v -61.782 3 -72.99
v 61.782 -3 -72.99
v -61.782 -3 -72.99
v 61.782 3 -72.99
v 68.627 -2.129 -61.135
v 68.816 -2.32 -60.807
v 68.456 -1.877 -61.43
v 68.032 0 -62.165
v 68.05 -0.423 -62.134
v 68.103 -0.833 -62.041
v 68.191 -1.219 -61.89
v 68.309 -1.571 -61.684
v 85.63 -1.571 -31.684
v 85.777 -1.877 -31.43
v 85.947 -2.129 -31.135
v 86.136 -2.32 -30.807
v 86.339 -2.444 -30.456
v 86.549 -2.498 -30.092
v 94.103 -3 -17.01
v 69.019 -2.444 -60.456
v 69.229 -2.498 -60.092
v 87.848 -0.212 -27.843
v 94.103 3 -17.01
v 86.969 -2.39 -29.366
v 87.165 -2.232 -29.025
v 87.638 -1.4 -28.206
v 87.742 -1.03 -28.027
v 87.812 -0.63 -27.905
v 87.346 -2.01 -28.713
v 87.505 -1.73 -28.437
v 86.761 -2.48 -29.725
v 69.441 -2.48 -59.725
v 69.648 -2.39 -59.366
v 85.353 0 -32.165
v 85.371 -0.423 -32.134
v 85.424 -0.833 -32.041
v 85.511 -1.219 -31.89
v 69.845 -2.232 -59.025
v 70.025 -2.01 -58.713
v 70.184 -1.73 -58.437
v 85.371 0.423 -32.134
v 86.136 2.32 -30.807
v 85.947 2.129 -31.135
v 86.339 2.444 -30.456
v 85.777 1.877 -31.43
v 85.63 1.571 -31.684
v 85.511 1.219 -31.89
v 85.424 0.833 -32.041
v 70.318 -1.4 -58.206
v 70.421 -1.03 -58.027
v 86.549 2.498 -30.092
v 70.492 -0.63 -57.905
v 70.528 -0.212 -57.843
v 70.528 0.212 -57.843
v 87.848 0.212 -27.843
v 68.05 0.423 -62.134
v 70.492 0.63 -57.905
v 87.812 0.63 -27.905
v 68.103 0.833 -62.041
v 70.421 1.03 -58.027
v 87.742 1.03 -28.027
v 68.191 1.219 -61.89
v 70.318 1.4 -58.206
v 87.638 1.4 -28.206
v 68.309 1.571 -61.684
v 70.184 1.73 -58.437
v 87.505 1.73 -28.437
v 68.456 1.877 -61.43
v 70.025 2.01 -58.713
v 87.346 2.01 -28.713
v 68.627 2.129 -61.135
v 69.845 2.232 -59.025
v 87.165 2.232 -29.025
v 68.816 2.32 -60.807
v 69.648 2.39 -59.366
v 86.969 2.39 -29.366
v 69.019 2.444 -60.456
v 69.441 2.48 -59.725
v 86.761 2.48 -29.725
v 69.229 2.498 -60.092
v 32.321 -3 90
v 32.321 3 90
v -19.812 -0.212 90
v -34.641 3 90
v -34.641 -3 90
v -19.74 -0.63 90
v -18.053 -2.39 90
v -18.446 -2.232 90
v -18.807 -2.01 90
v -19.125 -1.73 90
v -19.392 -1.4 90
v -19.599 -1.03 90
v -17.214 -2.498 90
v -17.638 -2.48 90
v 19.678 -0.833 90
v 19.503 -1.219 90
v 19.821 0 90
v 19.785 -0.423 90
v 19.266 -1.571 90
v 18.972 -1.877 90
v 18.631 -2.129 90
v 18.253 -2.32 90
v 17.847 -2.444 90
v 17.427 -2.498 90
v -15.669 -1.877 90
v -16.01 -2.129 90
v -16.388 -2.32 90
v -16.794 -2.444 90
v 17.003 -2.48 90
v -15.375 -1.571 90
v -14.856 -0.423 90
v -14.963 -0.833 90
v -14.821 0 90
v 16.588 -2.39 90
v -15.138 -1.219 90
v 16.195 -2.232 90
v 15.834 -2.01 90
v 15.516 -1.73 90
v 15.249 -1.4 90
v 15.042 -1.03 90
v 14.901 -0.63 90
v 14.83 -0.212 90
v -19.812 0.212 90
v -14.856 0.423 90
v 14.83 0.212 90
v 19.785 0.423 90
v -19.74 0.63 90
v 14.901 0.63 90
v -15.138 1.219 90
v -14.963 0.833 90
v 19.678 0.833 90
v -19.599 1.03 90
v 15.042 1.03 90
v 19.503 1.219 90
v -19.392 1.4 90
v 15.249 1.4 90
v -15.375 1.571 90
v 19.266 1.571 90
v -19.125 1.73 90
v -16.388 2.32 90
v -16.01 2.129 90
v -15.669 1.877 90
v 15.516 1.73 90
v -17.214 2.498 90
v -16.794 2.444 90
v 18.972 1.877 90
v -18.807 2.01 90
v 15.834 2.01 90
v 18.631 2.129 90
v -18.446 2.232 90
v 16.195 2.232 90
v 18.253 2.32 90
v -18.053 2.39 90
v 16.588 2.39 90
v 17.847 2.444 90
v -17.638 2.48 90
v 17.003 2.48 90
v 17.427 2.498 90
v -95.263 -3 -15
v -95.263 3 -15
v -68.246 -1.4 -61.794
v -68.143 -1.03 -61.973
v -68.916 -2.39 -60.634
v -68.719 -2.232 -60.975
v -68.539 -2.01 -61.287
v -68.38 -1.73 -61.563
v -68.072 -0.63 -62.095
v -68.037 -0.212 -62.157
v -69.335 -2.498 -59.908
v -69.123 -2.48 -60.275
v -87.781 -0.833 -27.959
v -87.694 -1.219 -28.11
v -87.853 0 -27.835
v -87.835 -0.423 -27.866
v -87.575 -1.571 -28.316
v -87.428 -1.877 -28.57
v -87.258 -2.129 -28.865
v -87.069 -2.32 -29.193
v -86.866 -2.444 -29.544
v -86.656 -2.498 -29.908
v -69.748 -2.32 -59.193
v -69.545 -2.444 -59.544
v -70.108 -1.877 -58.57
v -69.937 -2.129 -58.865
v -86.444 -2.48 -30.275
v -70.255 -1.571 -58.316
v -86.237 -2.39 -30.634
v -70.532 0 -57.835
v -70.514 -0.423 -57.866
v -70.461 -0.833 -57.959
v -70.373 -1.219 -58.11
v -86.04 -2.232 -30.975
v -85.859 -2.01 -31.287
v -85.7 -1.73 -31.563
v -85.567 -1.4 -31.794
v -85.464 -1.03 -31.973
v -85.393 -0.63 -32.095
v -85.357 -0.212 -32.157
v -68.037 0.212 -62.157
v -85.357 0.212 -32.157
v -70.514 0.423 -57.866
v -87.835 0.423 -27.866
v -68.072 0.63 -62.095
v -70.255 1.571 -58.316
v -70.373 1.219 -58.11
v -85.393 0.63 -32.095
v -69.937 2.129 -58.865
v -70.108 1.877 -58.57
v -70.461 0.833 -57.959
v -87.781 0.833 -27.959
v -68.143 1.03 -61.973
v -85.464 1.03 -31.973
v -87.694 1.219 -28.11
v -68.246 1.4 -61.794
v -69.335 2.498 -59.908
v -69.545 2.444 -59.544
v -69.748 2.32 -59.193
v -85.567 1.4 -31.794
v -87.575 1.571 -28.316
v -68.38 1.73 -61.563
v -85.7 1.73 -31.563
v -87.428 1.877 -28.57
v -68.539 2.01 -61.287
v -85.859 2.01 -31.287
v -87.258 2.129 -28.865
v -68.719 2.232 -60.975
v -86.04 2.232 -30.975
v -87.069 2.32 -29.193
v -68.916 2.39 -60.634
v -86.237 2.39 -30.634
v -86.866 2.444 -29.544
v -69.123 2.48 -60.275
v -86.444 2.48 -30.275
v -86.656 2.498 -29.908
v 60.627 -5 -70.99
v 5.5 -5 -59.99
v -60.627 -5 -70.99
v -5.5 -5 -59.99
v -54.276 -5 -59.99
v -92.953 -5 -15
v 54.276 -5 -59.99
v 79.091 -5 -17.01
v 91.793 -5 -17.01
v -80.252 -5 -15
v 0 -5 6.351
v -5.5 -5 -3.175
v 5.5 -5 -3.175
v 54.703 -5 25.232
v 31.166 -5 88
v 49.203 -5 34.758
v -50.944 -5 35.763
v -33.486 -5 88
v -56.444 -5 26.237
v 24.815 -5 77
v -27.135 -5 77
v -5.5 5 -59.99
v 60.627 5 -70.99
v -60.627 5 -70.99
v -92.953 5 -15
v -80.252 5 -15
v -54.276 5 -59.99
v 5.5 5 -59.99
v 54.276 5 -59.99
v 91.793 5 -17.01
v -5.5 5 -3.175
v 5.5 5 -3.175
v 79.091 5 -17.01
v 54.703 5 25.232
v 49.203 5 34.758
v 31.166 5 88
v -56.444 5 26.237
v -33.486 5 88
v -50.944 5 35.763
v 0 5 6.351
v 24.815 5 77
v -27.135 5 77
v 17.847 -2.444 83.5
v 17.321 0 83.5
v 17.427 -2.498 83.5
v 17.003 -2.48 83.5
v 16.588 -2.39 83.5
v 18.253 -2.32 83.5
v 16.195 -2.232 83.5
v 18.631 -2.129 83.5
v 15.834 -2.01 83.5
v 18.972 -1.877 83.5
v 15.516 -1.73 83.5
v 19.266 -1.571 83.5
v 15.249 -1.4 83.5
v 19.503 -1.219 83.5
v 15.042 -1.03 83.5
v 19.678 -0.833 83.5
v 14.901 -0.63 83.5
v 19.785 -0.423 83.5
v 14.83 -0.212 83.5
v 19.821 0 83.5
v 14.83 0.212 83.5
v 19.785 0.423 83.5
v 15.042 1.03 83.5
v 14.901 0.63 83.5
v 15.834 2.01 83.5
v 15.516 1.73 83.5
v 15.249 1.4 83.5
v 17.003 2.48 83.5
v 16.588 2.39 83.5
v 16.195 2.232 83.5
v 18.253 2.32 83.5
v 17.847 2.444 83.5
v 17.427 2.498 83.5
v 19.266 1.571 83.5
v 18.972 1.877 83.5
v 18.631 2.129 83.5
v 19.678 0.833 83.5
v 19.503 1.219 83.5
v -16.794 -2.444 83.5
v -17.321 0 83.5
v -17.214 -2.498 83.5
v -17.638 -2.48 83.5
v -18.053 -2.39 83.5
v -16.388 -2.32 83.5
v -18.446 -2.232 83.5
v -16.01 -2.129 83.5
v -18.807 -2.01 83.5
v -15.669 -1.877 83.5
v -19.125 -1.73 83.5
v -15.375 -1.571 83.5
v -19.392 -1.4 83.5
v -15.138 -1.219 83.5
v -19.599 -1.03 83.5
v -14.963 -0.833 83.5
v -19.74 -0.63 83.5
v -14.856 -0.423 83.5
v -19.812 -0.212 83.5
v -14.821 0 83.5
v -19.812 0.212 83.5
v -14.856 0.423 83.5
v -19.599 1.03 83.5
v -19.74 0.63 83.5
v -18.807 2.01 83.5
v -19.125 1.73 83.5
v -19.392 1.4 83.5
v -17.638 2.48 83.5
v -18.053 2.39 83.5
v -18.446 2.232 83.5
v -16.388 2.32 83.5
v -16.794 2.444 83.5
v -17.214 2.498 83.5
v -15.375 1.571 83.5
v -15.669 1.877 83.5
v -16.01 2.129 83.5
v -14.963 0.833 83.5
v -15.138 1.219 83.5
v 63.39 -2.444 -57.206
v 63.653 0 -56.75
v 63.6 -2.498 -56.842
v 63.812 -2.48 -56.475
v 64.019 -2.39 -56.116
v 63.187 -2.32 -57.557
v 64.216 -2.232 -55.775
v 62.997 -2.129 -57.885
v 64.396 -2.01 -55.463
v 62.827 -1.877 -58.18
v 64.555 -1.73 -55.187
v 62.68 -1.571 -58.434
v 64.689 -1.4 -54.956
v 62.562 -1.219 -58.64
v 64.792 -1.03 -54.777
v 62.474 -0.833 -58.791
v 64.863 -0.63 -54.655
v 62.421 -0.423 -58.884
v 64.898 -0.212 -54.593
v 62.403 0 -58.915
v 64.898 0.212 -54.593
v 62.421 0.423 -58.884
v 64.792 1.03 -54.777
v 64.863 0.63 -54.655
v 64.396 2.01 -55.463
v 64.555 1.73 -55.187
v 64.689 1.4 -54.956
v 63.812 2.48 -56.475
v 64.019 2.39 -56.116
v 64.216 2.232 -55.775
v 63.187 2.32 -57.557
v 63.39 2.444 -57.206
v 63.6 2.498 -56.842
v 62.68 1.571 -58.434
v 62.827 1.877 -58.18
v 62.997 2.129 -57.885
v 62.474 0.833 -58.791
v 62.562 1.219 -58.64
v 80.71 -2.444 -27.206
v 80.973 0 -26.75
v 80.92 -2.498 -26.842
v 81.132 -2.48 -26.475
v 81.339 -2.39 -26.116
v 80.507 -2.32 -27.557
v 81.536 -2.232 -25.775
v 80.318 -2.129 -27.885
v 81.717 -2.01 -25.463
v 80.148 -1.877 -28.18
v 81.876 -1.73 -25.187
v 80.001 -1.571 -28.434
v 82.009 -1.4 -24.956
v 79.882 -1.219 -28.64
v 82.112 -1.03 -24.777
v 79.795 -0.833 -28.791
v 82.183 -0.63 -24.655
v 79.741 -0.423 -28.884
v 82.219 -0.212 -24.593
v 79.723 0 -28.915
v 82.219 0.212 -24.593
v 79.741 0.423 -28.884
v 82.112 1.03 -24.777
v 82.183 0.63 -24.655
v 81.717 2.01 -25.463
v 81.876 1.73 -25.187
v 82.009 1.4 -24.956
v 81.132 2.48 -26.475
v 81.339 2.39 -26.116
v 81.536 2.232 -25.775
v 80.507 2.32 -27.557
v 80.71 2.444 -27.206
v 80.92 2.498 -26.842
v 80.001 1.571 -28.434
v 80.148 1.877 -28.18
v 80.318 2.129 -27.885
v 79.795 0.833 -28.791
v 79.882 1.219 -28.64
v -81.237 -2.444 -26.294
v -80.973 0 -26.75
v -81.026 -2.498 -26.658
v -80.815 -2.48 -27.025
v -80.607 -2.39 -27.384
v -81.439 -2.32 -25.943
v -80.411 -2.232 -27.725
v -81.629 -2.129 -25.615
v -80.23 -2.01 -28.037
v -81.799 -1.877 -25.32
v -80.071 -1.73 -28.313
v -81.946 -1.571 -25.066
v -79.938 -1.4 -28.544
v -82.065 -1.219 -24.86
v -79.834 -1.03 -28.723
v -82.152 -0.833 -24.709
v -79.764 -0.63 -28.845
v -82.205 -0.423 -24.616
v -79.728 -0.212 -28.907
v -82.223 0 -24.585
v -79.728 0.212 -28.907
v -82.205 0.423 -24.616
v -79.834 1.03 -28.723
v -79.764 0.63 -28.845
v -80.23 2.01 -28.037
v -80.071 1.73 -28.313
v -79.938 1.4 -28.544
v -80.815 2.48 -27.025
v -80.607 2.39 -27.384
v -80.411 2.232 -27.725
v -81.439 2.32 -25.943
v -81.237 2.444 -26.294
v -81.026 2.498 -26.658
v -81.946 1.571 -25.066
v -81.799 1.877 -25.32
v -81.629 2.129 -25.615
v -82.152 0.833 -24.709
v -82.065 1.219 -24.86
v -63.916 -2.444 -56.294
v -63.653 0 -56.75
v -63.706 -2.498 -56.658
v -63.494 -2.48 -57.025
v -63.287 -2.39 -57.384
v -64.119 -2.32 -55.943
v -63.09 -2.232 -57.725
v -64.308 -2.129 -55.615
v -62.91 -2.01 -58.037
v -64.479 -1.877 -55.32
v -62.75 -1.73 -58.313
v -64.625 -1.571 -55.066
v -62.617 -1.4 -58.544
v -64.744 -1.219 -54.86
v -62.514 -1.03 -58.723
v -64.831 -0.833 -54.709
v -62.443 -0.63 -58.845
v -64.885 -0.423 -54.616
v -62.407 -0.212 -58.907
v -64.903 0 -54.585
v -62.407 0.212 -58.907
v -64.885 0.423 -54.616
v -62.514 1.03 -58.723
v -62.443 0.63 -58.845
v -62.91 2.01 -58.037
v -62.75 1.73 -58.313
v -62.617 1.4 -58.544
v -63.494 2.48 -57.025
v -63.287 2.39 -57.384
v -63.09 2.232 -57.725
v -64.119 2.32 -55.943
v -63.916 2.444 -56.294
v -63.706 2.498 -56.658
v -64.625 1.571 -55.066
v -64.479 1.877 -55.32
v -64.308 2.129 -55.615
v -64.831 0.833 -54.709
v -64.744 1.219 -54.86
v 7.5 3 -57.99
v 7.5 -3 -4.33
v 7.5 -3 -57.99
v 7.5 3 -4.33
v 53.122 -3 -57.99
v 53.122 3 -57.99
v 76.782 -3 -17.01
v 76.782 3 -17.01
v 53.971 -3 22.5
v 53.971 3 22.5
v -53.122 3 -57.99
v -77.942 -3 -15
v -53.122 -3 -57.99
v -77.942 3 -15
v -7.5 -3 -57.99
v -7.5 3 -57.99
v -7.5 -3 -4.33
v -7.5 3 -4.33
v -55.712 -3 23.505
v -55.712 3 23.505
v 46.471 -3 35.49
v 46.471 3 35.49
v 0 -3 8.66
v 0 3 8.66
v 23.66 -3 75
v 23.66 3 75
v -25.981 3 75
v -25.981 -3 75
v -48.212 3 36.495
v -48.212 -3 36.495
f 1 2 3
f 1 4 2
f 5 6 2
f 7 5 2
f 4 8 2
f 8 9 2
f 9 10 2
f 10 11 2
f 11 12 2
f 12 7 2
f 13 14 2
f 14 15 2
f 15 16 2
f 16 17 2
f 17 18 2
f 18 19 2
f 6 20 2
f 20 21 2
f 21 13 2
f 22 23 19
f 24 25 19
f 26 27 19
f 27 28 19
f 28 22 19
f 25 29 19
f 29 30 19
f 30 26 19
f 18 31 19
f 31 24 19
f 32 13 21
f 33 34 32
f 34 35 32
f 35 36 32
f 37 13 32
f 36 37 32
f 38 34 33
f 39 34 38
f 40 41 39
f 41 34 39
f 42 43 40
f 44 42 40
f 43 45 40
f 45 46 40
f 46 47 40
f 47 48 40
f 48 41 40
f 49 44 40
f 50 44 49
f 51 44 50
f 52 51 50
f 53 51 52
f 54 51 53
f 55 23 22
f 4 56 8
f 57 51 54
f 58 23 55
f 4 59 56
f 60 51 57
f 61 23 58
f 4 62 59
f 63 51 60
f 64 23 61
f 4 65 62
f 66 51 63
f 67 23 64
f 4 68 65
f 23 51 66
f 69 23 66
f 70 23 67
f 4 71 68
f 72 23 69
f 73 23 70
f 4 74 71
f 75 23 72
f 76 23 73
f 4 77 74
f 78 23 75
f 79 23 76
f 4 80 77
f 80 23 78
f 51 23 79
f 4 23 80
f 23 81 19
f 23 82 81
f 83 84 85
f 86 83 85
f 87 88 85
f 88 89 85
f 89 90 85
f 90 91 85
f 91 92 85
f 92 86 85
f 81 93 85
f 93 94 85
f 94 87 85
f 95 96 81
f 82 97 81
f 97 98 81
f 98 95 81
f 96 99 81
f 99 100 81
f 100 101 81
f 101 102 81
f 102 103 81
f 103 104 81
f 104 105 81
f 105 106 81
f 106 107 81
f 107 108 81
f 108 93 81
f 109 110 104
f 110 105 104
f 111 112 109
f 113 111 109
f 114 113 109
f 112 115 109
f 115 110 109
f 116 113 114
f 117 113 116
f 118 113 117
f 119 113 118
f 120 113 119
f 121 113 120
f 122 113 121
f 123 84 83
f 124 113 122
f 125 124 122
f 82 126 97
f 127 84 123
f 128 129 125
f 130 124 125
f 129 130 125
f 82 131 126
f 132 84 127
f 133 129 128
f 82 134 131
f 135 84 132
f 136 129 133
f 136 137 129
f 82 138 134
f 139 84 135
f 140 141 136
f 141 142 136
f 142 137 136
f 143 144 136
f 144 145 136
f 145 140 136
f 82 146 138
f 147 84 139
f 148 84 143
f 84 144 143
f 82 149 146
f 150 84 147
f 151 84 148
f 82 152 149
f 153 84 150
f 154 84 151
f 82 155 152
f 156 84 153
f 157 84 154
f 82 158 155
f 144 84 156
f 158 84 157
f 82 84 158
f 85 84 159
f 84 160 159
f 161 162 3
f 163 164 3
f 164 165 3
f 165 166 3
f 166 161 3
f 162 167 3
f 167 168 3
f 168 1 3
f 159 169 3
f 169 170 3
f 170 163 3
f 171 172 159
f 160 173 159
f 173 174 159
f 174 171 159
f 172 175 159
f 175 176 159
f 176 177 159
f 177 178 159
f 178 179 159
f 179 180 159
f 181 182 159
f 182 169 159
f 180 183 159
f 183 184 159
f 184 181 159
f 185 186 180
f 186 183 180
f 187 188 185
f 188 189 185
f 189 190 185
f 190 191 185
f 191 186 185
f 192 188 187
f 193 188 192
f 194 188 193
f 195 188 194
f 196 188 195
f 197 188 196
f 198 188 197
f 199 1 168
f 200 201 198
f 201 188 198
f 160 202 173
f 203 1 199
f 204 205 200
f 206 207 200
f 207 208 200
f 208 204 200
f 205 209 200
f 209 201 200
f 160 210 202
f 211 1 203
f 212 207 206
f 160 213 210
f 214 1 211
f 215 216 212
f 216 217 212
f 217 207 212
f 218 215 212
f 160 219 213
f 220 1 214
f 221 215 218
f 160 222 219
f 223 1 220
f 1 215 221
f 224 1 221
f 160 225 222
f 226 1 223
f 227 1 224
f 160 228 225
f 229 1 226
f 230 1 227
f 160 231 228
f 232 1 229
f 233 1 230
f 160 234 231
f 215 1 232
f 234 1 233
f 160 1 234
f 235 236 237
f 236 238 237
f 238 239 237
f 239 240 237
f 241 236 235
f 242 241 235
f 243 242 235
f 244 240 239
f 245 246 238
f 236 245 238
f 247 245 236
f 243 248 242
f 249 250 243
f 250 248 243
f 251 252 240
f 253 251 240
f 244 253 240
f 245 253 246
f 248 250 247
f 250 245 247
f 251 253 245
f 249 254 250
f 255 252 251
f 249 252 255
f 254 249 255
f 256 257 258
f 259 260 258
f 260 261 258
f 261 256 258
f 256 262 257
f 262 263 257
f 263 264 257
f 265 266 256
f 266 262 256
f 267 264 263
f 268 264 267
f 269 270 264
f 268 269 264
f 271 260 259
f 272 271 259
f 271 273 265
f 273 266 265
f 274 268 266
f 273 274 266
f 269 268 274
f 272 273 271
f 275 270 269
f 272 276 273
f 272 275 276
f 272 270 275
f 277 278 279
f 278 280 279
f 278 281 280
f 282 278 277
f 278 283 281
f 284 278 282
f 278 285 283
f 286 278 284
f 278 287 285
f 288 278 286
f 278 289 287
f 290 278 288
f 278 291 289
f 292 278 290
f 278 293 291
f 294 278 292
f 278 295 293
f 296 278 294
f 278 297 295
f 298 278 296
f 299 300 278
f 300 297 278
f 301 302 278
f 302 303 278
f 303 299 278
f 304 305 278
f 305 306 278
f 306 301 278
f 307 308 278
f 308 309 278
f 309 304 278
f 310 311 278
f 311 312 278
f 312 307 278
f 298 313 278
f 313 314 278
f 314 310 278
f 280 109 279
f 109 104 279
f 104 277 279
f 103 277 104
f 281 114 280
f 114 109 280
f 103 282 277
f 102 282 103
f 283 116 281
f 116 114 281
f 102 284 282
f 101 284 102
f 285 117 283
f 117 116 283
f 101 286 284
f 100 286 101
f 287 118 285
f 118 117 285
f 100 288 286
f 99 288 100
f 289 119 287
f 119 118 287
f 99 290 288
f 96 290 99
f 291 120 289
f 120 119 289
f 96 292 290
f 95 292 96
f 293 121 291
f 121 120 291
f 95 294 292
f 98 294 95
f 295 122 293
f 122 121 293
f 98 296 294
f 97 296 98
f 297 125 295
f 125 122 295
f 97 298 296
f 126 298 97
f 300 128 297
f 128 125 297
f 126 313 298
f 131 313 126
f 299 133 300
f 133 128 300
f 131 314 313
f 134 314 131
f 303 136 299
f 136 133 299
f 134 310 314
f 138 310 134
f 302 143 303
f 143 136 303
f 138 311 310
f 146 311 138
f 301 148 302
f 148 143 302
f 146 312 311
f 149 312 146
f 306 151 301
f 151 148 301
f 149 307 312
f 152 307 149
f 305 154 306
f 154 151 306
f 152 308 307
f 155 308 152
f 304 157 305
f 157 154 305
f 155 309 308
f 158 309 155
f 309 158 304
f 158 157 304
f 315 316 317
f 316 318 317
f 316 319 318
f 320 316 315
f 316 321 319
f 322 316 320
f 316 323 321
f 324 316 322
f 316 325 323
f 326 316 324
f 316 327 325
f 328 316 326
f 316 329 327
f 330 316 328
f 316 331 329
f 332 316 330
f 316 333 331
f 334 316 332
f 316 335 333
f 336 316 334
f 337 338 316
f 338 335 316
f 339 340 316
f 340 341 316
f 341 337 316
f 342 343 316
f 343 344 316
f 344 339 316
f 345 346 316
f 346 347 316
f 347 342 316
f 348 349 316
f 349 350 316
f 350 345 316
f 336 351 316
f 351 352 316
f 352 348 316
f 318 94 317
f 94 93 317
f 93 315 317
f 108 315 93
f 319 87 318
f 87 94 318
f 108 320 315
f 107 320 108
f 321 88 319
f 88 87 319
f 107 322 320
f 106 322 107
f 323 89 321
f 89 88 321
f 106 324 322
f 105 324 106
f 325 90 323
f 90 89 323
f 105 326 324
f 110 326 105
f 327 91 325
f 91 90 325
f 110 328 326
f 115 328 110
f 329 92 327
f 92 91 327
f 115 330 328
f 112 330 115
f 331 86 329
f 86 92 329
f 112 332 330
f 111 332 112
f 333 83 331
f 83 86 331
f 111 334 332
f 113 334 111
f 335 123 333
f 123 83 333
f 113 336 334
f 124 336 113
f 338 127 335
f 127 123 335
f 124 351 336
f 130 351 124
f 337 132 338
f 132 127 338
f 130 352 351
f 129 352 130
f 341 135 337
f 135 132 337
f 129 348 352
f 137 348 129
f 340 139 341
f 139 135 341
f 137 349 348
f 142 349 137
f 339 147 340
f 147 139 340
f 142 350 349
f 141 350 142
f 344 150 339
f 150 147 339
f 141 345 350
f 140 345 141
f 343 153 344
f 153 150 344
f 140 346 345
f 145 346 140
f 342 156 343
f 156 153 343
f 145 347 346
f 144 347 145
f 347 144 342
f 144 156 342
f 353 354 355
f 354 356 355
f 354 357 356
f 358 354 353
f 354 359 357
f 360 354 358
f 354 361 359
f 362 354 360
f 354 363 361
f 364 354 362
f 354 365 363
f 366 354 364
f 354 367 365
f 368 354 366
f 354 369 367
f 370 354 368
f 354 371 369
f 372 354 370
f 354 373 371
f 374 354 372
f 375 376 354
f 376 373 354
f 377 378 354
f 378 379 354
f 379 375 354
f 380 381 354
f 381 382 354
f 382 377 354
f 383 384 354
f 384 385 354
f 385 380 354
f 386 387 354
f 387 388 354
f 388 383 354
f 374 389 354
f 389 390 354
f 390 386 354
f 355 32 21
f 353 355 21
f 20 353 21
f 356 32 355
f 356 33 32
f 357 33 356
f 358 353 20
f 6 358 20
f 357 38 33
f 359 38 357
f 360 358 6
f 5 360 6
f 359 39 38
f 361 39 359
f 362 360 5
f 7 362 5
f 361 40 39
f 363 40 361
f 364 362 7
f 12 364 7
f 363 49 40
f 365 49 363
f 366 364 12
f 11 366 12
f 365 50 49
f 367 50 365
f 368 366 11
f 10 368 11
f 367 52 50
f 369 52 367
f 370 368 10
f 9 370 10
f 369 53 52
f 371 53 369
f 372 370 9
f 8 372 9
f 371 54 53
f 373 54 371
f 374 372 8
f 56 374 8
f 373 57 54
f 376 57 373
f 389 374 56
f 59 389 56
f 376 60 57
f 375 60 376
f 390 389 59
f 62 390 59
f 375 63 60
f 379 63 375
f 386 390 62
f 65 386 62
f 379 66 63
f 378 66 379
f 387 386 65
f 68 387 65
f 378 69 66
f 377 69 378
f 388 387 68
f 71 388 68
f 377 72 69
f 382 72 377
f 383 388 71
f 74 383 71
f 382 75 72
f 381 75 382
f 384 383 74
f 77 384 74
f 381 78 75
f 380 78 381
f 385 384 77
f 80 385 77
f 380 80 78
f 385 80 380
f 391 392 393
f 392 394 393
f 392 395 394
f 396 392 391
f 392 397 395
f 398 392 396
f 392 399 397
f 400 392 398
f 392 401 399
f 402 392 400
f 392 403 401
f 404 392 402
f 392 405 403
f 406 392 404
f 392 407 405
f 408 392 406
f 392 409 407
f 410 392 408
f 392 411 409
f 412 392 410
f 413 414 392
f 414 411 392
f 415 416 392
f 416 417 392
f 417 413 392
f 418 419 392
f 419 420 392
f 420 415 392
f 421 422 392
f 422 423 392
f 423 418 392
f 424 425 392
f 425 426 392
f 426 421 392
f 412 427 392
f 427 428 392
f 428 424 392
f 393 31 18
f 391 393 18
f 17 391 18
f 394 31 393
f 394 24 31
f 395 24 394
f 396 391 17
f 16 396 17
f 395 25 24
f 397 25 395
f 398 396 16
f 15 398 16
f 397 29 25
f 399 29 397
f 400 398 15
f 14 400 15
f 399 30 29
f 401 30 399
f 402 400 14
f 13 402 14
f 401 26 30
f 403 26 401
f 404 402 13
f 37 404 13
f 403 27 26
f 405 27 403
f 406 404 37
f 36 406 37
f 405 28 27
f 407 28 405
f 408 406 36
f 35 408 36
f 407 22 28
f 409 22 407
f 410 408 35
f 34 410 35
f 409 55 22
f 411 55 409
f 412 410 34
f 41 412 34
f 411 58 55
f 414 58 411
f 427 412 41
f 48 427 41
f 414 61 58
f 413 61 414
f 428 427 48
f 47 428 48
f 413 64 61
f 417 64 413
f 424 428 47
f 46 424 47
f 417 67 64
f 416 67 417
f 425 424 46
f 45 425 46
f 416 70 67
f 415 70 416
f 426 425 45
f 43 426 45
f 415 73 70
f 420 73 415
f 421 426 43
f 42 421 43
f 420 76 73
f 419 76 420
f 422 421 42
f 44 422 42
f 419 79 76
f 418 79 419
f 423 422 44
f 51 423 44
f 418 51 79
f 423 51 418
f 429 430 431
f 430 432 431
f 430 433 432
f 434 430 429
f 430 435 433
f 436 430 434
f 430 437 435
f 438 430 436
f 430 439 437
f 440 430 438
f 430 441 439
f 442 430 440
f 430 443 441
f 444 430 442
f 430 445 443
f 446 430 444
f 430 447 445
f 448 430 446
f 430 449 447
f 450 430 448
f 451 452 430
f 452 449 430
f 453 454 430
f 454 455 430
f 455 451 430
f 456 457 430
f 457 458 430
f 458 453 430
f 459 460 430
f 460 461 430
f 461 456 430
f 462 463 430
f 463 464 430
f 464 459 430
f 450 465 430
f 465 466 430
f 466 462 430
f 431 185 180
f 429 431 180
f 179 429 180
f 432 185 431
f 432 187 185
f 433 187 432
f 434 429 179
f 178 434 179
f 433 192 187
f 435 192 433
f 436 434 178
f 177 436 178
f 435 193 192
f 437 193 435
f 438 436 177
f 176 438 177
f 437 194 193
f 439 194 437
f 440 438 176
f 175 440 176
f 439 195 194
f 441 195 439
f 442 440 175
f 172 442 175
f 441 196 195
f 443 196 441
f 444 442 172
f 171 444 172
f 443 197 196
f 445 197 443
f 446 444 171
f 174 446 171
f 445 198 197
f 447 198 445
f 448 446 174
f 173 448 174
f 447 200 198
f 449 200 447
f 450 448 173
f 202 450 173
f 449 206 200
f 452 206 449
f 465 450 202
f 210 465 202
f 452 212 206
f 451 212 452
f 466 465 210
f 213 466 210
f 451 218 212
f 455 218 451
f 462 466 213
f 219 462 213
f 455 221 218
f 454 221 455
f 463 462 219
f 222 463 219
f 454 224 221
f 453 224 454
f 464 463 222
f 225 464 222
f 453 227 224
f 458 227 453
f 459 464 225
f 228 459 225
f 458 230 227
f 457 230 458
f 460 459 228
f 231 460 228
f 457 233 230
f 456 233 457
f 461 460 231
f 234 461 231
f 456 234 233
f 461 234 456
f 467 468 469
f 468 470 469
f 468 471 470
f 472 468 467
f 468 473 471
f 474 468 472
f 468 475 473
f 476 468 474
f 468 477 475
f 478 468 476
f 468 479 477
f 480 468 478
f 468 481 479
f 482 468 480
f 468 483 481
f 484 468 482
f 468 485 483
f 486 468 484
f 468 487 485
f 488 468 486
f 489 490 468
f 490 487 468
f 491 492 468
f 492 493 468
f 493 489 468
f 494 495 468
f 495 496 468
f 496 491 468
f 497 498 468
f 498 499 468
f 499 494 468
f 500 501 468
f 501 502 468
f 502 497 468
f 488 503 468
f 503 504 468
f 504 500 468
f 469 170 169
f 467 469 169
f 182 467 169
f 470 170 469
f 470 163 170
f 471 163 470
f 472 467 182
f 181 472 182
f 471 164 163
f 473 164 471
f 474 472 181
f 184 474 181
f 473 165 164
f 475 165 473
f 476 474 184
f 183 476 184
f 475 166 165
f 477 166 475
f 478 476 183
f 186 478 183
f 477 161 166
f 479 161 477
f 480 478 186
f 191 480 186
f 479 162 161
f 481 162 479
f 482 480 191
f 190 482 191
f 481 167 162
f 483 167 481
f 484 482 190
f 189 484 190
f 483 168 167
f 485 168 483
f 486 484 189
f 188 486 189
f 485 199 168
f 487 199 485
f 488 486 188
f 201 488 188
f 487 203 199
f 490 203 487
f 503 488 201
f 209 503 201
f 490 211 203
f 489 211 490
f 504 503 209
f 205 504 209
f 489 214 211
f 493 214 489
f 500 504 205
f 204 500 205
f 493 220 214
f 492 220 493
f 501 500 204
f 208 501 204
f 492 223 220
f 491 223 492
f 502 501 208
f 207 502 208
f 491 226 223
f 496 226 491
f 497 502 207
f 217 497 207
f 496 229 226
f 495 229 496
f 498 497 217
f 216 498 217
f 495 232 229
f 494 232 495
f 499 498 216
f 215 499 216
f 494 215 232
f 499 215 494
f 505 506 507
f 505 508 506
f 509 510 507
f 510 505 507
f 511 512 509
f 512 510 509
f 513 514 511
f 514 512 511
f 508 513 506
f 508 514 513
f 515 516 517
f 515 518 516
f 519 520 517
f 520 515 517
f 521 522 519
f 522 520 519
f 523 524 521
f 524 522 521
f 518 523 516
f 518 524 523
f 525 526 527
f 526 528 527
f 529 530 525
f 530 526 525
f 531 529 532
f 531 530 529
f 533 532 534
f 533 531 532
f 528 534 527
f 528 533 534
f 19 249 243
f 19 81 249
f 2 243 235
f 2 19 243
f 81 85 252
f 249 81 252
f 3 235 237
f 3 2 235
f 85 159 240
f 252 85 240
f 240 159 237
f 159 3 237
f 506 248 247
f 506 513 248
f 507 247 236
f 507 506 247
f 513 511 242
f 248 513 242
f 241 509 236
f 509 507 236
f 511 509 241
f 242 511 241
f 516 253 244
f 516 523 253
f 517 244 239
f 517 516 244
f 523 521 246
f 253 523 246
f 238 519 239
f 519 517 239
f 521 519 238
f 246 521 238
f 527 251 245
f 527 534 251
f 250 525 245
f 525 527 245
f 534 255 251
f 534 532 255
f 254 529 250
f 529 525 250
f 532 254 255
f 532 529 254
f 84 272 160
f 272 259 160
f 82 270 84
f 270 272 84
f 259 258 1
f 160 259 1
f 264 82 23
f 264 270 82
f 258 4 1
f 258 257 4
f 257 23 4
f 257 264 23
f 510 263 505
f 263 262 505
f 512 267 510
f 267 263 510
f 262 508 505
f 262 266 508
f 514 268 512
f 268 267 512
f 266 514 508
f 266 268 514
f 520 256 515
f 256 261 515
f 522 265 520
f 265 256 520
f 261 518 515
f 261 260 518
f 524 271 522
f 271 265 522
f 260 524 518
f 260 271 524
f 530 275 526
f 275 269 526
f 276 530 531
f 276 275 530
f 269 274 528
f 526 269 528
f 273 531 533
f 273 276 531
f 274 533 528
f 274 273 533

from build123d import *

# Parameters (mm, degrees)
BOSS_EXTRUDE1_DEPTH        = 5
BOSS_EXTRUDE1_DEPTH_BACK   = 5
M3X6X5_INSERT_HOLES1_D     = 5
M3X6X5_INSERT_HOLES1_DEPTH = 6.5
M3X6X5_INSERT_HOLES2_D     = 5
M3X6X5_INSERT_HOLES2_DEPTH = 6.5
M3X6X5_INSERT_HOLES3_D     = 5
M3X6X5_INSERT_HOLES3_DEPTH = 6.5
CUT_EXTRUDE3_DEPTH         = 132.434394281
CHAMFER3_SIZE              = 2


with BuildPart() as part:
    # Sketch1 → Boss-Extrude1 (new, two sides: drawn at the far end of the back side and taken through both)
    with BuildSketch(Plane(origin=(0, 0, 0), x_dir=(1, 0, 0), z_dir=(0, 1, 0)).offset(-BOSS_EXTRUDE1_DEPTH_BACK)):
        Polygon((-61.782032303, 72.990381057), (-95.262794416, 15), (-34.641016151, -90), (32.320508076, -90), (94.102540378, 17.009618943), (61.782032303, 72.990381057), align=None)
    extrude(amount=BOSS_EXTRUDE1_DEPTH + BOSS_EXTRUDE1_DEPTH_BACK)

    # M3x6x5 Insert Holes1
    with Locations(Plane.XY.offset(90)):
        with Locations((-17.320508076, 0), (17.320508076, 0)):
            Hole(M3X6X5_INSERT_HOLES1_D / 2, depth=M3X6X5_INSERT_HOLES1_DEPTH)

    # M3x6x5 Insert Holes2
    with Locations(Plane(origin=(77.942286341, 0, -45), x_dir=(-0.5000000000000001, 0, -0.8660254037844386), z_dir=(0.8660254037844386, 0, -0.5000000000000001))):
        with Locations((-17.320508076, 0), (17.320508076, 0)):
            Hole(M3X6X5_INSERT_HOLES2_D / 2, depth=M3X6X5_INSERT_HOLES2_DEPTH)

    # M3x6x5 Insert Holes3
    with Locations(Plane(origin=(-77.942286341, 0, -45), x_dir=(-0.5000000000000003, 0, 0.8660254037844386), z_dir=(-0.8660254037844386, 0, -0.5000000000000003))):
        with Locations((-17.320508076, 0), (17.320508076, 0)):
            Hole(M3X6X5_INSERT_HOLES3_D / 2, depth=M3X6X5_INSERT_HOLES3_DEPTH)

    # Sketch10 → Cut-Extrude3 (cut, through all)
    with BuildSketch(Plane(origin=(0, 5, 0), x_dir=(1, 0, 0), z_dir=(0, 1, 0))):
        Polygon((-7.5, 57.990381057), (-53.121778265, 57.990381057), (-77.942286341, 15), (-55.711524227, -23.504809472), (-7.5, 4.330127019), align=None)
        Polygon((7.5, 57.990381057), (53.121778265, 57.990381057), (76.782032303, 17.009618943), (53.97114317, -22.5), (7.5, 4.330127019), align=None)
        Polygon((46.47114317, -35.490381057), (23.660254038, -75), (-25.980762114, -75), (-48.211524227, -36.495190528), (0, -8.660254038), align=None)
    extrude(amount=-CUT_EXTRUDE3_DEPTH, mode=Mode.SUBTRACT)

    # Chamfer3
    chamfer3_edges = [part.edges().sort_by_distance(p)[0] for p in [
        (-64.951905284, -5, 37.5),
        (-1.160254038, -5, 90),
        (0, 5, -72.990381057),
        (-78.52241336, 5, -43.995190528),
        (-64.951905284, 5, 37.5),
        (-1.160254038, 5, 90),
        (63.211524227, 5, 36.495190528),
        (77.942286341, 5, -45),
        (63.211524227, -5, 36.495190528),
        (77.942286341, -5, -45),
        (0, -5, -72.990381057),
        (23.235571585, -5, 22.075317547),
        (35.065698604, -5, 55.245190528),
        (-1.160254038, -5, 75),
        (-37.09614317, -5, 55.747595264),
        (-24.105762114, -5, 22.577722283),
        (23.235571585, 5, 22.075317547),
        (-24.105762114, 5, 22.577722283),
        (-37.09614317, 5, 55.747595264),
        (-1.160254038, 5, 75),
        (35.065698604, 5, 55.245190528),
        (-65.532032303, -5, -36.495190528),
        (-30.310889132, -5, -57.990381057),
        (-7.5, -5, -31.160254038),
        (-31.605762114, -5, 9.587341226),
        (-66.826905284, -5, 4.252404736),
        (-65.532032303, 5, -36.495190528),
        (-66.826905284, 5, 4.252404736),
        (-31.605762114, 5, 9.587341226),
        (-7.5, 5, -31.160254038),
        (-30.310889132, 5, -57.990381057),
        (7.5, -5, -31.160254038),
        (30.310889132, -5, -57.990381057),
        (64.951905284, -5, -37.5),
        (65.376587737, -5, 2.745190528),
        (30.735571585, -5, 9.084936491),
        (7.5, 5, -31.160254038),
        (30.735571585, 5, 9.084936491),
        (65.376587737, 5, 2.745190528),
        (64.951905284, 5, -37.5),
        (30.310889132, 5, -57.990381057),
        (-78.52241336, -5, -43.995190528),
    ]]
    chamfer(chamfer3_edges, length=CHAMFER3_SIZE)


solid = part.part
